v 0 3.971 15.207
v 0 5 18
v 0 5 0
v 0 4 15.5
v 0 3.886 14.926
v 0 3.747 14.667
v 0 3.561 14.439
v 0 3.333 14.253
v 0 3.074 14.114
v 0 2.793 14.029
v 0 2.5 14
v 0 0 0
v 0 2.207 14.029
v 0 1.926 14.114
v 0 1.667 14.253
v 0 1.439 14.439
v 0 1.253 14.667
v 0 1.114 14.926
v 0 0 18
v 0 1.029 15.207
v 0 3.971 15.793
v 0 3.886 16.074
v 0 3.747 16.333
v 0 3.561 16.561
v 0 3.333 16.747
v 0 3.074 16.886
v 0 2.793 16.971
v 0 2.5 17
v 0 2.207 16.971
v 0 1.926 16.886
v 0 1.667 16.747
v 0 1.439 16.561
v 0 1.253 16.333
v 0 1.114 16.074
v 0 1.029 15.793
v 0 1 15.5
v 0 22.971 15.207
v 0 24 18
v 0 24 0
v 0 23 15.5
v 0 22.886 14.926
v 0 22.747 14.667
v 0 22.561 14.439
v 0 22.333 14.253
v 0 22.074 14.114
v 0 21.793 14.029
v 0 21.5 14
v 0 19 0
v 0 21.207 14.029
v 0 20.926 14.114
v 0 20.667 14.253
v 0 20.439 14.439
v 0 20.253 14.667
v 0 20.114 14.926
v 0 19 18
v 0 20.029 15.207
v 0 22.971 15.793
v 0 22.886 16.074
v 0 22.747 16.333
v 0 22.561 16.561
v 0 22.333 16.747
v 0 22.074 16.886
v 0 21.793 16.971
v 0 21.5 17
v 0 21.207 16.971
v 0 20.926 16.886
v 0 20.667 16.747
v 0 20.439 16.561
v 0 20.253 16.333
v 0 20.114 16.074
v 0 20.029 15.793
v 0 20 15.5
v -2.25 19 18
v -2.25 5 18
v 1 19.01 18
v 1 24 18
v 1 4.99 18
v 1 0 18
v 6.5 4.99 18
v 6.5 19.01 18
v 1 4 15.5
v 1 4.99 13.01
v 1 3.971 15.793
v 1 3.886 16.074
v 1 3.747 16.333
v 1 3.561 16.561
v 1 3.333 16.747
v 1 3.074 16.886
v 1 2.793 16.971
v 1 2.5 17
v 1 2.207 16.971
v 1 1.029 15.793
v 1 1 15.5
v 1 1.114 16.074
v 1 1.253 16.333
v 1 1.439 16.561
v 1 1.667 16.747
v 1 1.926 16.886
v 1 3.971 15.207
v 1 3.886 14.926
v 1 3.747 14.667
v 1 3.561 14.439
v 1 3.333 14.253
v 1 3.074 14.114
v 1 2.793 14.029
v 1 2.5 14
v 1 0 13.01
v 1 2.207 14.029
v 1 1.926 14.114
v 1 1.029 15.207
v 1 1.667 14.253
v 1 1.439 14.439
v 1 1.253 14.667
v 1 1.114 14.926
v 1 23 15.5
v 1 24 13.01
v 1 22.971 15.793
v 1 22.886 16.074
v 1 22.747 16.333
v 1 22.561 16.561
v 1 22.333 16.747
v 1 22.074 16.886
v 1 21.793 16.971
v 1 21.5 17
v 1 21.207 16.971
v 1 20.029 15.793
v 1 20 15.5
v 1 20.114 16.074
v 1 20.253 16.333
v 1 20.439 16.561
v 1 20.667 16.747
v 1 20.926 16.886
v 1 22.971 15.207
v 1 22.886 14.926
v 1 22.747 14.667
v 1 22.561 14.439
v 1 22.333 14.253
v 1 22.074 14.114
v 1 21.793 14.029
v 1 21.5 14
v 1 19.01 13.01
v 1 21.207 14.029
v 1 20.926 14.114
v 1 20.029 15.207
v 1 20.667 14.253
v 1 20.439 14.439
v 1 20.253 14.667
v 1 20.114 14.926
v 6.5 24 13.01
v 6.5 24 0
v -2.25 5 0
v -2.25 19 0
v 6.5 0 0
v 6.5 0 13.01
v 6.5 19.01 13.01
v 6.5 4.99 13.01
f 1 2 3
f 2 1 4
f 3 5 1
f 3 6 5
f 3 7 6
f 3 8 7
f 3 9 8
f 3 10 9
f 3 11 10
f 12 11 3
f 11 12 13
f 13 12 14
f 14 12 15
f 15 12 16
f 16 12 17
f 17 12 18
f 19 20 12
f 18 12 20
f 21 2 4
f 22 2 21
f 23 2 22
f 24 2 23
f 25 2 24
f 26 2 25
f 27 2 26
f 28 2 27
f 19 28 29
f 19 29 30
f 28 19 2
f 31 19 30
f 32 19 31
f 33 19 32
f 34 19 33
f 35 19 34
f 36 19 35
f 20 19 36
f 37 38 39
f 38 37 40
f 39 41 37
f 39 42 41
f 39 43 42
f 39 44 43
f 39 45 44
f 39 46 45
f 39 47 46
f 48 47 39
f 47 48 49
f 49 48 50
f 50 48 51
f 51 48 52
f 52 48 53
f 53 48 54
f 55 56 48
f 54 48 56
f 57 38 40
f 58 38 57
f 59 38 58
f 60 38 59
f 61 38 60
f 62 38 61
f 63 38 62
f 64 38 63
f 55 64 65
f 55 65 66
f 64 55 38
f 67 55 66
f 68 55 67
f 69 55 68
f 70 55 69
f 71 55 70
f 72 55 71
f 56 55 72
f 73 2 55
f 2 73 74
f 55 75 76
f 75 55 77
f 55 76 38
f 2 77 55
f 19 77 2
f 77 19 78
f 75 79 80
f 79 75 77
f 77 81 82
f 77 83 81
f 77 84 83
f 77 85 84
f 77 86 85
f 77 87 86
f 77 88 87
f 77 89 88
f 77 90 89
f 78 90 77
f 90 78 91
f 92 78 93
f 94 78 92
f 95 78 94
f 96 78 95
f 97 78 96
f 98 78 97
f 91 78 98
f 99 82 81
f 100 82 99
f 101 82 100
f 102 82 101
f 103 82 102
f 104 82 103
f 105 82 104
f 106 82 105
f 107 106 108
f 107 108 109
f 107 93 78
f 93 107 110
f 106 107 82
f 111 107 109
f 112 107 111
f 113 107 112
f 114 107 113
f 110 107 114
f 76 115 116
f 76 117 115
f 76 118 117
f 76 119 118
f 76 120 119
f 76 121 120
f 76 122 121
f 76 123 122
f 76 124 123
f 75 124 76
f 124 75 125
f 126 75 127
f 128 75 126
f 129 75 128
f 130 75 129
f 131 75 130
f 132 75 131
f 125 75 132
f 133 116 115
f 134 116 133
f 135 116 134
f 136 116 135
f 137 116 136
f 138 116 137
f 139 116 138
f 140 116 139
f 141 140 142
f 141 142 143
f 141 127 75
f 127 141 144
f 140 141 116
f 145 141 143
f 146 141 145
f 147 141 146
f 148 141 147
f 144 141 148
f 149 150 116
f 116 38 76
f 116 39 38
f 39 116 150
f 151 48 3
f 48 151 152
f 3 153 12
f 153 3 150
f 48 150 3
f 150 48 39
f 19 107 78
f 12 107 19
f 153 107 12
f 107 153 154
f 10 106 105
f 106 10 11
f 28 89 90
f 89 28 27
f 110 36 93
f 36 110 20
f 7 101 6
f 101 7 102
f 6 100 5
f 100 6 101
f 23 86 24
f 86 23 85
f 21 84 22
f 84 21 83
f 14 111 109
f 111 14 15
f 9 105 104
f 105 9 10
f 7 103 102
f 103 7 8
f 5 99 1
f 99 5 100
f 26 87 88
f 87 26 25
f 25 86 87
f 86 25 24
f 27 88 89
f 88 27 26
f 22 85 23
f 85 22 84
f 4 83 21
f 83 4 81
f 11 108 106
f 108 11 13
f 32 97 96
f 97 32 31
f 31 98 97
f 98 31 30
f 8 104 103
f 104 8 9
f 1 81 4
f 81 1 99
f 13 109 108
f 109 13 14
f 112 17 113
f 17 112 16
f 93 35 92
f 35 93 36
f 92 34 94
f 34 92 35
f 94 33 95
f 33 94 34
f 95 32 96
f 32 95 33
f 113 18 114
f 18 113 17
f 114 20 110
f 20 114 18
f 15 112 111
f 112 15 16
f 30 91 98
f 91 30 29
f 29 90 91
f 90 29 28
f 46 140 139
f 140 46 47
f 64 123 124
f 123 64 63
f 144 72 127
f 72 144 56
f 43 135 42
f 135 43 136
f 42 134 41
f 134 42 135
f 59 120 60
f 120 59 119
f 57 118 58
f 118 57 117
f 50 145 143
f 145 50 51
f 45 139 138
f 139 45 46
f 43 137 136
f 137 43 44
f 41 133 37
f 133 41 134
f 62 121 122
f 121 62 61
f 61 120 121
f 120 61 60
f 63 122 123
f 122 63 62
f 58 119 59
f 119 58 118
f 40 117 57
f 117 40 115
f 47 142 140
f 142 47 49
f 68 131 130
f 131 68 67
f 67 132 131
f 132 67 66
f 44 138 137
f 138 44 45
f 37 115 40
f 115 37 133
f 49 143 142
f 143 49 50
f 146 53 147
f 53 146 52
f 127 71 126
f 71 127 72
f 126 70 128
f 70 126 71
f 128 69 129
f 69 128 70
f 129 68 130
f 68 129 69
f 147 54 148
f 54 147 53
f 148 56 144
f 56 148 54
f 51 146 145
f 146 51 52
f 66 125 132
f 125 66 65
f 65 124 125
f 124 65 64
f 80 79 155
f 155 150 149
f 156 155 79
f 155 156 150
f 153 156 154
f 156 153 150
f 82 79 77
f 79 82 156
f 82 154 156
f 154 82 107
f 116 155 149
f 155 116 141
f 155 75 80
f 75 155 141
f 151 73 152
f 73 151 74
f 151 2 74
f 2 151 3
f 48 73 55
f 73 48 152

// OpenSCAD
// file: ../../../conf/printer_config.scad
/**********************************************************************************************************************
 **
 ** conf/printer_config.scad
 **
 ** This file contains the main control variables that determine the size and shape of the printer. Note that in the
 ** actual parts specifications, the constants defined here will only ever be accessed through functions defined in
 ** conf/derived_sizes.scad exclusively to allow for easier adaptation, should the mode of calculation change. 
 **
 ** All sizes in mm. Caution: Little to no cross-checking is implemented. Change values sensibly and one at a time.
 **
 ** This file is NOT to be included by any other file except for conf/derived_sizes.scad.
 **
 **********************************************************************************************************************/

include <constants.scad>

// ===== FRAME RAIL DIMENSIONS ========================================================================================

// The length of the vertical MakerSlide extrusions that make up the rails for the carriages.
FRAME_V_RAIL_HEIGHT = 800;

// The length of the horizontal 20x20 V-Slot extrusions that form the sides of the triangle.
FRAME_H_RAIL_LENGTH = 400;

// ===== WORKING SURFACE (BED) DIMENSIONS =============================================================================

// The thickness of the plate that serves as the heated bed.
BED_THICKNESS = 4;

// The diameter of the plate that serves as the heated bed.
BED_DIAMETER = 300;

// ===== DIMENSIONS OF THE PRINTED FRAME PARTS ========================================================================

// The additional clearance to leave around the MakerSlide extrusion.
MAKERSLIDE_CLEARANCE = 0.25;

// The thickness of the walls outside the extruded parts.
FRAME_PART_WALL_THICKNESS = 3;

// The thickness of the wall that separates the vertical rails from the horizontal extrusions.
FRAME_V_H_RAIL_SEPARATION = 8;

// The depth of the holes that hold the V-Slot extrusions.
FRAME_PART_VSLOT_DEPTH = 30;

// Whether to use a horizontal rail at the base of the printer or not.
FRAME_HORIZONTAL_BASE_RAIL = true;

// The depth of the holes in the foot that hold the MakerSlide extrusions. This is for the foot version that holds
// a horizontal rail.
FRAME_FOOT_RAIL_MAKERSLIDE_DEPTH = 23; 

// The depth of the plate in the foot that the external foot will screw into.
FRAME_FOOT_RAIL_PLATE_DEPTH = 15;

// The thickness of the plate in the foot that the external foot will screw into.
// Hint: Easier to print (although more material is required) if equals to FRAME_FOOT_RAIL_MAKERSLIDE_DEPTH.
FRAME_FOOT_RAIL_PLATE_HEIGHT = 23;

// The depth of the holes in the foot that hold the MakerSlide extrusions. This is for the foot version that does not
// hold a horizontal rail.
FRAME_FOOT_NORAIL_MAKERSLIDE_DEPTH = 17.5; 

// The size of the screws that can be used to mount the foot to the underlying surface.
FRAME_FOOT_PLATE_SCREW_SIZE = M8;

// The clearance to leave around the screw head on all sides.
FRAME_FOOT_PLATE_SCREW_HEAD_CLEARANCE = 0.25;

// The diameter of the adjustable foot that screws into the foot bracket. 
// Note that the polygon is INscribed into this circumference.
FRAME_FOOT_PLATE_DIAMETER = 50;

// The number of sides to the adjustable foot that screws into the foot bracket.
FRAME_FOOT_PLATE_SIDES = 8;

// The thickness of the adjustable foot that screws into the foot bracket.
// Keep this larger than the head of the screw used to fix it, or you will run into trouble.
FRAME_FOOT_PLATE_THICKNESS = 6.5;

// The height of the bracket that holds the motor. WARNING: Increasing this might make it difficult to 
// turn the screws that hold the motor.
FRAME_MOTOR_BRACKET_HEIGHT = 20;

// The height of the bracket that holds the intermediate level with the working surface (print bed).
// Will be A LOT easier to print if equals to 2020 extrusion width + FRAME_PART_WALL_THICKNESS
FRAME_BED_BRACKET_HEIGHT = 23; 

// The depth of the holes in the head that hold the MakerSlide extrusions.
FRAME_HEAD_MAKERSLIDE_DEPTH = 35; 

// The clearance between the tensioner / bracket and its guide blocks on either side.
FRAME_HEAD_GUIDE_CLEARANCE = 0.5;

// ===== ENCLOSURE DIMENSIONS =========================================================================================

// The material thickness of the solid (back and side) enclosure walls.
ENCLOSURE_SOLID_THICKNESS = 4;

// The thickness of the insulation layer between the enclosure walls and the brackets they are mounted to.
ENCLOSURE_INSULATION_THICKNESS = 2;

// The gap between the horizontal extrusions and the enclosure side walls.
ENCLOSURE_SIDE_GAP = 40;

// The factor used to round down the enclosure plate widths.
ENCLOSURE_ROUND_DOWN_TO = 1;

// The thickness of the brackets that hold the outer enclosure walls.
ENCLOSURE_BRACKET_THICKNESS = 6;

// The width of the brackets that hold the outer enclosure walls, excluding the parts that bolt on to the 
// horizontal rails.
ENCLOSURE_BRACKET_WIDTH = 50;

// The distance of the two screw holes and nut recesses in the brackets.
ENCLOSURE_BRACKET_SCREW_DISTANCE = 20;

// ===== CARRIAGE DIMENSIONS ==========================================================================================

// The thickness of the carriage base plate. A thicker plate will make the carriage stiffer, but cost more
// material to print and take away space from the working area.
CARRIAGE_PLATE_THICKNESS = 6;

// The width of the border around the holes in the carriage base plate that hold the V-Wheels. 
CARRIAGE_PLATE_BORDER_WIDTH = 8;

// The upward angle of the ball holder on the carriage.
CARRIAGE_BALL_HOLDER_ANGLE = 10;

// ===== ARM DIMENSIONS AND PARAMETERS ================================================================================

// The distance between the rods that hold the effector.
ROD_DISTANCE = 65;

// The outer diameter of the rods.
ROD_OUTER_DIAMETER = 8;

// The inner diameter of the rods. Set to 0 if the rods are not hollow.
ROD_INNER_DIAMETER = 0;

// The additional clearance to leave between the rod and the holder.
ROD_CLEARANCE = 0.25;

// The thickness of the outer wall around the rod.
ROD_HOLDER_WALL_THICKNESS = 2.2;

// The depth of the insets that hold the rods.
ROD_HOLDER_DEPTH = 10;

// The size of the text on the outside of the rod holders.
ROD_HOLDER_TEXT_SIZE = 9;

// The depth of the text on the outside of the rod holders.
ROD_HOLDER_TEXT_DEPTH = 0.5;

// The minimum angle of the arms.
ROD_MIN_ANGLE = 18;

// The factor used to round up the rod length.
ROD_ROUND_UP_TO = 5;

// The thickness of the magnet holder arms.
MAGNET_HOLDER_THICKNESS = 5;

// The additional clearance to leave around the magnet holder pin.
MAGNET_CLEARANCE = 0.025;

// ===== IR SENSOR DIMENSIONS AND PARAMETERS ==========================================================================

// The additional clearance to leave around the PCB.
IR_SENSOR_PCB_CLEARANCE = 0.2;

// The additional clearance to leave around the magnets.
IR_SENSOR_MAGNET_CLEARANCE = 0.2;

// ===== EFFECTOR DIMENSIONS AND PARAMETERS ===========================================================================

// The additional distance between the magnets on the effector (not the rod distance - the other one :-)).
// This value is added to the minimum distance determined by the magnet size and wall thickness.
EFFECTOR_BALL_ADDITIONAL_DISTANCE = 15;

// The thickness of the effector plate.
EFFECTOR_THICKNESS = 6;

// ===== OTHER DIMENSIONS AND PARAMETERS ==============================================================================

// The range by which the vertical belt tensioner can be adjusted.
TENSIONER_RANGE = 15;
// file: ../../../conf/constants.scad
/**********************************************************************************************************************
 **
 ** conf/constants.scad
 **
 ** This file contains constants and aliases used for the part size definitions.
 **
 **********************************************************************************************************************/

/**
 * The alias names for the rails.
 * A is the "front left" rail, B the "front right" rail, C the back rail.
 * These constants are also used for the sides of the frame and the effector; in this case, side A is the one 
 * opposing rail A.
 */
A = 0;
B = 1;
C = 2;

/**
 * Aliases for metric screw/nut sizes.
 */
M2 = 2;
M3 = 3;
M4 = 4;
M5 = 5;
M8 = 8;

/** 
 * Aliases for NEMA stepper motors.
 */
NEMA14 = 14;
NEMA17 = 17;
NEMA23 = 23;
// file: ../../../conf/colors.scad
/**********************************************************************************************************************
 **
 ** conf/colors.scad
 **
 ** This file defines some modules to use symbolic colors throughout the entire project.
 **
 **********************************************************************************************************************/

/**
 * The color of the aluminium extrusions.
 */
module color_extrusion() {
	color("LightGrey")
		children();
} 

/**
 * The color of the cast aluminium parts.
 */
module color_cast_aluminium() {
	color("Silver")
		children();
} 

/**
 * The color of the solid parts of the enclosure.
 */
module color_enclosure_solid() {
	color("BurlyWood")
		children();
} 

/**
 * The color of the "outer" printed frame elements.
 */
module color_printed_outer_frame() {
	color("RoyalBlue")
		children();
} 

/**
 * The color of the "inner" printed frame elements.
 */
module color_printed_inner_frame() {
	color("DodgerBlue")
		children();
} 

/**
 * The color of the printed carriages.
 */
module color_printed_carriage() {
	color("DodgerBlue")
		children();
} 

/**
 * The color of the printed tensioners and end switch brackets.
 */
module color_printed_head_parts() {
	color("PowderBlue")
		children();
} 

/**
 * The color of the magnet holders.
 */
module color_printed_magnet_holders() {
	color("RoyalBlue")
		children();
} 

/**
 * The color of the printed effectors.
 */
module color_printed_effector() {
	color("DodgerBlue")
		children();
} 

/**
 * The color of the stock hardware parts like nuts, bolts and screws.
 */
module color_hardware() {
	color("DarkSlateGray")
		children();
} 

/**
 * The color of the magnets and steel balls.
 */
module color_magnets_balls() {
	color("Silver")
		children();
} 

/**
 * The color of the gears and ball bearings.
 */
module color_gears() {
	color("Gray")
		children();
} 

/**
 * The color of the belts.
 */
module color_belt() {
	color("SaddleBrown")
		children();
} 

/**
 * The color of the stepper motors.
 */
module color_motor() {
	color("DimGray")
		children();
} 

/**
 * The color of the powder coated parts (e. g. the extruder mount brackets).
 */
module color_powder_coated() {
	color([0.15, 0.15, 0.15])
		children();
} 

/**
 * The color of the end switches.
 */
module color_switch() {
	color([0.15, 0.15, 0.15])
		children();
} 

/**
 * The color of the V-Wheels.
 */
module color_vwheels() {
	color([0.075, 0.075, 0.075])
		children();
} 

/**
 * The color of the carbon fiber rods for the arms.
 */
module color_rod() {
	color([0.2, 0.2, 0.2])
		children();
} 

/**
 * The color for electronic component placeholders
 */
module color_electronics() {
	color("Green")
		children();
} 

/**
 * The color of punches and other objects that are usually not intended to be rendered as such, but rather to be
 * used as subtractive objects.
 */
module color_punch() {
	color("Red")
		children();
} 
// main file
/**********************************************************************************************************************
 **
 ** parts/vitamins/electronic/escher_ir_sensor.scad
 **
 ** This file renders an approximation of the Mini Differential IR height sensor board available from 
 ** http://www.escher3d.com/pages/order/products/product1.php
 **
 **********************************************************************************************************************/

include <../../../conf/colors.scad>
include <../../../conf/derived_sizes.scad>
include <../../../conf/part_sizes.scad>

union() {
	difference() {
		// the base PCB...
		cube([escher_ir_sensor_pcb_thickness(),
		      escher_ir_sensor_pcb_width(),
	    	  escher_ir_sensor_pcb_height()]);

		// ...minus the screw holes
		translate([-epsilon(),
			       escher_ir_sensor_hole_offset_side(),
			       escher_ir_sensor_pcb_height() - escher_ir_sensor_hole_offset_top()])
			rotate([0, 90, 0])
				cylinder(d = escher_ir_sensor_hole_size(),
					     h = escher_ir_sensor_pcb_thickness() + 2 * epsilon(),
				    	 $fn = escher_ir_sensor_resolution());
		translate([-epsilon(),
			       escher_ir_sensor_pcb_width()  - escher_ir_sensor_hole_offset_side(),
			       escher_ir_sensor_pcb_height() - escher_ir_sensor_hole_offset_top()])
			rotate([0, 90, 0])
				cylinder(d = escher_ir_sensor_hole_size(),
					     h = escher_ir_sensor_pcb_thickness() + 2 * epsilon(),
				    	 $fn = escher_ir_sensor_resolution());
	}

	// placeholder for the components on the top side
	translate([escher_ir_sensor_pcb_thickness(), 0, 0]) 
		difference() {
			// the entire top side...
			cube([escher_ir_sensor_pcb_max_component_height(),
				  escher_ir_sensor_pcb_width(),
				  escher_ir_sensor_pcb_height()]);
			// minus the free areas above the screw holes
			translate([-epsilon(),
				       -epsilon(), 
				       escher_ir_sensor_pcb_height() - escher_ir_sensor_pcb_top_edge_clearance() + epsilon()])
				cube([escher_ir_sensor_pcb_max_component_height() + 2 * epsilon(),
					  escher_ir_sensor_pcb_top_edge_clearance(),
					  escher_ir_sensor_pcb_top_edge_clearance()]);
			translate([-epsilon(),
				       escher_ir_sensor_pcb_width() - escher_ir_sensor_pcb_top_edge_clearance() + epsilon(), 
				       escher_ir_sensor_pcb_height() - escher_ir_sensor_pcb_top_edge_clearance() + epsilon()])
				cube([escher_ir_sensor_pcb_max_component_height() + 2 * epsilon(),
					  escher_ir_sensor_pcb_top_edge_clearance(),
					  escher_ir_sensor_pcb_top_edge_clearance()]);
		}

	// placeholder for the pins on the back side
	translate([- escher_ir_sensor_pcb_max_pin_length(),
		        escher_ir_sensor_pcb_bottom_side_clearance(), 
		        0])
		cube([escher_ir_sensor_pcb_max_pin_length(),
			  escher_ir_sensor_pcb_width() - 2 * escher_ir_sensor_pcb_bottom_side_clearance(),
			  escher_ir_sensor_pcb_height()]);
	
}
